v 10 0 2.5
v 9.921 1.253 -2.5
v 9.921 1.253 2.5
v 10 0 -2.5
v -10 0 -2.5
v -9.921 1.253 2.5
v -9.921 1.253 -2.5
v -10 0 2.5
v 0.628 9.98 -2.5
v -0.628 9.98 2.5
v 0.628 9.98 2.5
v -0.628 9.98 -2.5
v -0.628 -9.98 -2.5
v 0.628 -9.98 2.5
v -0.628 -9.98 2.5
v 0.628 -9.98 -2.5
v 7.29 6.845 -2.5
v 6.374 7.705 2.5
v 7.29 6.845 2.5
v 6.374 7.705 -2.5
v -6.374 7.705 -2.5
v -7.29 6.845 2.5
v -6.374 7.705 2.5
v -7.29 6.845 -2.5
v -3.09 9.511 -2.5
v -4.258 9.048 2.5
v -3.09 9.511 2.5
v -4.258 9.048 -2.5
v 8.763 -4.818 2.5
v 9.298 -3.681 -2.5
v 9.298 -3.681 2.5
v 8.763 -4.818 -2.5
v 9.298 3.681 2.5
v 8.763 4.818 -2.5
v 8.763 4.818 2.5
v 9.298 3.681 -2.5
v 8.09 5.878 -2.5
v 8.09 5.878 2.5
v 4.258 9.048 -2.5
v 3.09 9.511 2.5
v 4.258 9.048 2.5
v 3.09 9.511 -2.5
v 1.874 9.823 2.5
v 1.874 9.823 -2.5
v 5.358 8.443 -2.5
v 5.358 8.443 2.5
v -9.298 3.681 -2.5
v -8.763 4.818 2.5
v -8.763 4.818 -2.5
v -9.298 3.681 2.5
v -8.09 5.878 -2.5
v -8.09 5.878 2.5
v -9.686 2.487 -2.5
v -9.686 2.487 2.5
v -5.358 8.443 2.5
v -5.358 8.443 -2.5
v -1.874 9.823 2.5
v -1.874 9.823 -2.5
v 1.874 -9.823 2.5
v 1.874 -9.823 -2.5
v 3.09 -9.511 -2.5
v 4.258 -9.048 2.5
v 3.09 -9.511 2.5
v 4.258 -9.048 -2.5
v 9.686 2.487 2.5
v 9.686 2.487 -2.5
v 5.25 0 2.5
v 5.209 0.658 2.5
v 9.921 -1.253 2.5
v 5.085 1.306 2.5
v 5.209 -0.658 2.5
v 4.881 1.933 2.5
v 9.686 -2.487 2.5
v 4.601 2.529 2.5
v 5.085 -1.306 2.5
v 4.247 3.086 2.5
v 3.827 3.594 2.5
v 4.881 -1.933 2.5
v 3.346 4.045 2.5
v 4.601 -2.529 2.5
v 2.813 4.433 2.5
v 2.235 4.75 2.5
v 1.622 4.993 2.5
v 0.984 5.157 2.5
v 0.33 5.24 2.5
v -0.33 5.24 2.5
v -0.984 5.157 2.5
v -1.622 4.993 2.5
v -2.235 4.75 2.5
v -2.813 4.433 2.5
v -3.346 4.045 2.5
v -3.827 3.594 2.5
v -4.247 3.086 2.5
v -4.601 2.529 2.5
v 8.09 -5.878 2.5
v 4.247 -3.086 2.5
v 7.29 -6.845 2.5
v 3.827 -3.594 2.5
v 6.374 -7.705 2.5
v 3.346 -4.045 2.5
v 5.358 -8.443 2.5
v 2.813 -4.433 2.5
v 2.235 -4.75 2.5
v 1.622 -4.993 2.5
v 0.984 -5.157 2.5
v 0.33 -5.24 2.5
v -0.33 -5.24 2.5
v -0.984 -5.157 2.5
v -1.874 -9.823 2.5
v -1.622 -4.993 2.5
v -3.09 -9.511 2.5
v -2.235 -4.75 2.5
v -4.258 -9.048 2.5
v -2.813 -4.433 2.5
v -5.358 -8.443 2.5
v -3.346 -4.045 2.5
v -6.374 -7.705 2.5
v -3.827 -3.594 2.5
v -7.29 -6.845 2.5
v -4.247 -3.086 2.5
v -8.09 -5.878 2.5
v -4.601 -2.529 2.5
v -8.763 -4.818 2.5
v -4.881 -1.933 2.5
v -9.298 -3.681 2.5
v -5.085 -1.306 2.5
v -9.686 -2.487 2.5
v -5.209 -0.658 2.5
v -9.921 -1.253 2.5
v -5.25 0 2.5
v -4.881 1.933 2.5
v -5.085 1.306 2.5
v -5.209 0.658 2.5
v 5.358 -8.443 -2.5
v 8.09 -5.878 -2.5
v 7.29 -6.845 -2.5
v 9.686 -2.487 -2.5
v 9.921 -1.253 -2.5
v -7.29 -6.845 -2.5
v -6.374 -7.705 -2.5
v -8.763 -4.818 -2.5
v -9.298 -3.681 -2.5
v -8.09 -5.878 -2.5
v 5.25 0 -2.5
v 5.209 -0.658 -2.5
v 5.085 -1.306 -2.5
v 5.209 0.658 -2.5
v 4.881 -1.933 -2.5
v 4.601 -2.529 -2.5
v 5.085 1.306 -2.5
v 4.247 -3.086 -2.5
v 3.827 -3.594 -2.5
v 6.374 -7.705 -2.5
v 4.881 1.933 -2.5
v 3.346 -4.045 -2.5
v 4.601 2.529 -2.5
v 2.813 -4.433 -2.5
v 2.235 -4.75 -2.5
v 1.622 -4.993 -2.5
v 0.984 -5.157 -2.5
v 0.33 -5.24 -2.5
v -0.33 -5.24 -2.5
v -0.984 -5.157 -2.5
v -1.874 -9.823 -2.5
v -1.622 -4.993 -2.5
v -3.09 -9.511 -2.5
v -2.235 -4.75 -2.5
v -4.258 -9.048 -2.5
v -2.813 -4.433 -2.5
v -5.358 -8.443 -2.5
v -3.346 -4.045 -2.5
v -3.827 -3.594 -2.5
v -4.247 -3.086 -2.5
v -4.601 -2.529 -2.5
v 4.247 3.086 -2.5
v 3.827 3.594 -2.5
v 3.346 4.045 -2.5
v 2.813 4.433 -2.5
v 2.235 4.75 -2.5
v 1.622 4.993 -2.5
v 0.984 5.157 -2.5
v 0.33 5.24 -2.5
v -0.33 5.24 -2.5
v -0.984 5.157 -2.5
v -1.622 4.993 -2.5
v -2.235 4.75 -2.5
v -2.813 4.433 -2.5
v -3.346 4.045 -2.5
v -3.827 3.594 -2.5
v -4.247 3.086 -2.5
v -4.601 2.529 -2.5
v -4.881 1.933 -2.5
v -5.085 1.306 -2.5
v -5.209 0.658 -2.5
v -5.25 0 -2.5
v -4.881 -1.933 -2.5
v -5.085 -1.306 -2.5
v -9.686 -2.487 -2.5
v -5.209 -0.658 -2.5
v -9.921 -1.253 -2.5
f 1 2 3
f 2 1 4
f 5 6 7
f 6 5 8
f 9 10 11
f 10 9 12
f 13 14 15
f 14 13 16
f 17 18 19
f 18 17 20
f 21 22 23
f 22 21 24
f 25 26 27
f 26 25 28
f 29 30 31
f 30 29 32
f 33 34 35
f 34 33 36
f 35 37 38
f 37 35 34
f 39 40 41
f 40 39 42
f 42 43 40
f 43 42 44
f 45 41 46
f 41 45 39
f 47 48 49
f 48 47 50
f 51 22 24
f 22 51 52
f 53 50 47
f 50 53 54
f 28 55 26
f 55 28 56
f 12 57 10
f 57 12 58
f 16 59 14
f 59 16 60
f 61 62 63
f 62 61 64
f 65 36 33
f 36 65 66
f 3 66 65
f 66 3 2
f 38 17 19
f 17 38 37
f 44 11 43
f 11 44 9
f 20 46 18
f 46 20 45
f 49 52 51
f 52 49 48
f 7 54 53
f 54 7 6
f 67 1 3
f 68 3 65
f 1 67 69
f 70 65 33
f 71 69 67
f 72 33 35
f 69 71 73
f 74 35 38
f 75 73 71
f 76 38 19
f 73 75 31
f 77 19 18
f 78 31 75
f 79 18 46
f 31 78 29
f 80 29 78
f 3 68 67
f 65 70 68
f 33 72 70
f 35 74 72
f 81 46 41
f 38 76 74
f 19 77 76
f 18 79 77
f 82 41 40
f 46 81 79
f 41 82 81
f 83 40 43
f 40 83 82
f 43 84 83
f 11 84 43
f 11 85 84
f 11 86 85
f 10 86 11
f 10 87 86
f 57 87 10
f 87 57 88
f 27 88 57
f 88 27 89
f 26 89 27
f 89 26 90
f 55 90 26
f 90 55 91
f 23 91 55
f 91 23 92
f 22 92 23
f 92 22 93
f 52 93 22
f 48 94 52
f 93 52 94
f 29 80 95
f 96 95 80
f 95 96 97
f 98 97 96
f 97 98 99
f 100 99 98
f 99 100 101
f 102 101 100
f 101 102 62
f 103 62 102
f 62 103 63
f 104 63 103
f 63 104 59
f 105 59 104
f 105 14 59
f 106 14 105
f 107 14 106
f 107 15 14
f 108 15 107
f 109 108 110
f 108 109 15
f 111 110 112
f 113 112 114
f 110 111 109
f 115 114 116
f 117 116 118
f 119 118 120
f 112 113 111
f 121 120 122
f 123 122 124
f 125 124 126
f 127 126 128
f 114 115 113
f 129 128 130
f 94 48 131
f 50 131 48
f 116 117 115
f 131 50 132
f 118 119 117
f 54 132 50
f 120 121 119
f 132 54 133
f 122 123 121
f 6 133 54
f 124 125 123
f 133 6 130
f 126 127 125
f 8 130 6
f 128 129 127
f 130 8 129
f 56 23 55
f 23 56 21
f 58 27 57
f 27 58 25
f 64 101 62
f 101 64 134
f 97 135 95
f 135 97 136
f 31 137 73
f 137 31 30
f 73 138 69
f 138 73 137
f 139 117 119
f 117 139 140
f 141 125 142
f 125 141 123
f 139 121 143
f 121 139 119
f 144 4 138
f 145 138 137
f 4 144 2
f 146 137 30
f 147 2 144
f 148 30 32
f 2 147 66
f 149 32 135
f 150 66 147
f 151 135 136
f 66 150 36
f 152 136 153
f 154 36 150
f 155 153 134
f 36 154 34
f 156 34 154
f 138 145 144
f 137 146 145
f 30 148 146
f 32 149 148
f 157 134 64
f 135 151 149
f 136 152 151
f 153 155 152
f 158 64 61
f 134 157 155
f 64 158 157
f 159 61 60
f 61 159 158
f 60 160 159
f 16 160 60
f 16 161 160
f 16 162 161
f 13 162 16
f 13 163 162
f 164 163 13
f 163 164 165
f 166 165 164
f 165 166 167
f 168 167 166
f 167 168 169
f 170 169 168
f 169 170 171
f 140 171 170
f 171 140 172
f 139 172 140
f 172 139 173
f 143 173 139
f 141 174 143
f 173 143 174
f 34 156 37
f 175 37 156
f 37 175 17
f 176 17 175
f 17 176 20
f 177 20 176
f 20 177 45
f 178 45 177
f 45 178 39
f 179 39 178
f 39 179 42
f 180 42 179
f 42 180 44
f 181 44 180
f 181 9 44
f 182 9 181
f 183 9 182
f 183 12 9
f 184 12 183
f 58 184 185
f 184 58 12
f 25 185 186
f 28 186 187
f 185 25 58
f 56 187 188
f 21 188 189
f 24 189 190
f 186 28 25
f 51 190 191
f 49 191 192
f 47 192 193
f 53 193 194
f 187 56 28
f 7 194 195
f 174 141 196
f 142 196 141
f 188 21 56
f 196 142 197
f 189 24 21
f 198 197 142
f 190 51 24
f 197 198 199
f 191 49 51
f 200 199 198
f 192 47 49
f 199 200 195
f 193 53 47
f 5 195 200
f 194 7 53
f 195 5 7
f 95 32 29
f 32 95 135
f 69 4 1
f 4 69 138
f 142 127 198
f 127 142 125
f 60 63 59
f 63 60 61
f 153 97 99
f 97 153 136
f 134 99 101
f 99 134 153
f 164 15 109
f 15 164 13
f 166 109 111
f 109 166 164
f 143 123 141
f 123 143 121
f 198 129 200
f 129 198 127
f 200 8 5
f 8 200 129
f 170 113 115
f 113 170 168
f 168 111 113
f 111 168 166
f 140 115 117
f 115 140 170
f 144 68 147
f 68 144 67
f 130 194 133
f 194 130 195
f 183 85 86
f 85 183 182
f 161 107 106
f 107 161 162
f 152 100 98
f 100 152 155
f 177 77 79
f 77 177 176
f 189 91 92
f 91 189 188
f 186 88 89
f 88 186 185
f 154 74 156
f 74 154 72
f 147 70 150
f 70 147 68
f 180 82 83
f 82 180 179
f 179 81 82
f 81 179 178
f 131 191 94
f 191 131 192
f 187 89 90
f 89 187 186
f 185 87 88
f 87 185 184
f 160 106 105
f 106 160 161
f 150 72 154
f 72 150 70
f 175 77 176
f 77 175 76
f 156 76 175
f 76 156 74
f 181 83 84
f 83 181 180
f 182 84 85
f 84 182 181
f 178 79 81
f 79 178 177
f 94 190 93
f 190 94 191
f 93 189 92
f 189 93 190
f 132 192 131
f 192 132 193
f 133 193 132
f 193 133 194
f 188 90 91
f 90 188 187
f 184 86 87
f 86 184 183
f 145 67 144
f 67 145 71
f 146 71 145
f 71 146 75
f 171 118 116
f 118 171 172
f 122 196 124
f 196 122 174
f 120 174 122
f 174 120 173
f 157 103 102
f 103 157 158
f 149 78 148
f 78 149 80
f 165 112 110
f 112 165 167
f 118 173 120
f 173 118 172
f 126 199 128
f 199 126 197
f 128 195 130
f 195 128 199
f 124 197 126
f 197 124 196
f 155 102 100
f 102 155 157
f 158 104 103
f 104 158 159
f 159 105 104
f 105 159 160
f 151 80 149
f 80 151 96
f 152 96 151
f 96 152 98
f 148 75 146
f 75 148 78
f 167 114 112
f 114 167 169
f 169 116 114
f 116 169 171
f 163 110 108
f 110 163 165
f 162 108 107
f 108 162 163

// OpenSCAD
$fn = 50;


difference() {
	union() {
		translate(v = [0, 0, -2.5000000000]) {
			cylinder(h = 5, r = 10.0000000000);
		}
	}
	union() {
		translate(v = [0, 0, -100.0000000000]) {
			cylinder(h = 200, r = 5.2500000000);
		}
	}
}
